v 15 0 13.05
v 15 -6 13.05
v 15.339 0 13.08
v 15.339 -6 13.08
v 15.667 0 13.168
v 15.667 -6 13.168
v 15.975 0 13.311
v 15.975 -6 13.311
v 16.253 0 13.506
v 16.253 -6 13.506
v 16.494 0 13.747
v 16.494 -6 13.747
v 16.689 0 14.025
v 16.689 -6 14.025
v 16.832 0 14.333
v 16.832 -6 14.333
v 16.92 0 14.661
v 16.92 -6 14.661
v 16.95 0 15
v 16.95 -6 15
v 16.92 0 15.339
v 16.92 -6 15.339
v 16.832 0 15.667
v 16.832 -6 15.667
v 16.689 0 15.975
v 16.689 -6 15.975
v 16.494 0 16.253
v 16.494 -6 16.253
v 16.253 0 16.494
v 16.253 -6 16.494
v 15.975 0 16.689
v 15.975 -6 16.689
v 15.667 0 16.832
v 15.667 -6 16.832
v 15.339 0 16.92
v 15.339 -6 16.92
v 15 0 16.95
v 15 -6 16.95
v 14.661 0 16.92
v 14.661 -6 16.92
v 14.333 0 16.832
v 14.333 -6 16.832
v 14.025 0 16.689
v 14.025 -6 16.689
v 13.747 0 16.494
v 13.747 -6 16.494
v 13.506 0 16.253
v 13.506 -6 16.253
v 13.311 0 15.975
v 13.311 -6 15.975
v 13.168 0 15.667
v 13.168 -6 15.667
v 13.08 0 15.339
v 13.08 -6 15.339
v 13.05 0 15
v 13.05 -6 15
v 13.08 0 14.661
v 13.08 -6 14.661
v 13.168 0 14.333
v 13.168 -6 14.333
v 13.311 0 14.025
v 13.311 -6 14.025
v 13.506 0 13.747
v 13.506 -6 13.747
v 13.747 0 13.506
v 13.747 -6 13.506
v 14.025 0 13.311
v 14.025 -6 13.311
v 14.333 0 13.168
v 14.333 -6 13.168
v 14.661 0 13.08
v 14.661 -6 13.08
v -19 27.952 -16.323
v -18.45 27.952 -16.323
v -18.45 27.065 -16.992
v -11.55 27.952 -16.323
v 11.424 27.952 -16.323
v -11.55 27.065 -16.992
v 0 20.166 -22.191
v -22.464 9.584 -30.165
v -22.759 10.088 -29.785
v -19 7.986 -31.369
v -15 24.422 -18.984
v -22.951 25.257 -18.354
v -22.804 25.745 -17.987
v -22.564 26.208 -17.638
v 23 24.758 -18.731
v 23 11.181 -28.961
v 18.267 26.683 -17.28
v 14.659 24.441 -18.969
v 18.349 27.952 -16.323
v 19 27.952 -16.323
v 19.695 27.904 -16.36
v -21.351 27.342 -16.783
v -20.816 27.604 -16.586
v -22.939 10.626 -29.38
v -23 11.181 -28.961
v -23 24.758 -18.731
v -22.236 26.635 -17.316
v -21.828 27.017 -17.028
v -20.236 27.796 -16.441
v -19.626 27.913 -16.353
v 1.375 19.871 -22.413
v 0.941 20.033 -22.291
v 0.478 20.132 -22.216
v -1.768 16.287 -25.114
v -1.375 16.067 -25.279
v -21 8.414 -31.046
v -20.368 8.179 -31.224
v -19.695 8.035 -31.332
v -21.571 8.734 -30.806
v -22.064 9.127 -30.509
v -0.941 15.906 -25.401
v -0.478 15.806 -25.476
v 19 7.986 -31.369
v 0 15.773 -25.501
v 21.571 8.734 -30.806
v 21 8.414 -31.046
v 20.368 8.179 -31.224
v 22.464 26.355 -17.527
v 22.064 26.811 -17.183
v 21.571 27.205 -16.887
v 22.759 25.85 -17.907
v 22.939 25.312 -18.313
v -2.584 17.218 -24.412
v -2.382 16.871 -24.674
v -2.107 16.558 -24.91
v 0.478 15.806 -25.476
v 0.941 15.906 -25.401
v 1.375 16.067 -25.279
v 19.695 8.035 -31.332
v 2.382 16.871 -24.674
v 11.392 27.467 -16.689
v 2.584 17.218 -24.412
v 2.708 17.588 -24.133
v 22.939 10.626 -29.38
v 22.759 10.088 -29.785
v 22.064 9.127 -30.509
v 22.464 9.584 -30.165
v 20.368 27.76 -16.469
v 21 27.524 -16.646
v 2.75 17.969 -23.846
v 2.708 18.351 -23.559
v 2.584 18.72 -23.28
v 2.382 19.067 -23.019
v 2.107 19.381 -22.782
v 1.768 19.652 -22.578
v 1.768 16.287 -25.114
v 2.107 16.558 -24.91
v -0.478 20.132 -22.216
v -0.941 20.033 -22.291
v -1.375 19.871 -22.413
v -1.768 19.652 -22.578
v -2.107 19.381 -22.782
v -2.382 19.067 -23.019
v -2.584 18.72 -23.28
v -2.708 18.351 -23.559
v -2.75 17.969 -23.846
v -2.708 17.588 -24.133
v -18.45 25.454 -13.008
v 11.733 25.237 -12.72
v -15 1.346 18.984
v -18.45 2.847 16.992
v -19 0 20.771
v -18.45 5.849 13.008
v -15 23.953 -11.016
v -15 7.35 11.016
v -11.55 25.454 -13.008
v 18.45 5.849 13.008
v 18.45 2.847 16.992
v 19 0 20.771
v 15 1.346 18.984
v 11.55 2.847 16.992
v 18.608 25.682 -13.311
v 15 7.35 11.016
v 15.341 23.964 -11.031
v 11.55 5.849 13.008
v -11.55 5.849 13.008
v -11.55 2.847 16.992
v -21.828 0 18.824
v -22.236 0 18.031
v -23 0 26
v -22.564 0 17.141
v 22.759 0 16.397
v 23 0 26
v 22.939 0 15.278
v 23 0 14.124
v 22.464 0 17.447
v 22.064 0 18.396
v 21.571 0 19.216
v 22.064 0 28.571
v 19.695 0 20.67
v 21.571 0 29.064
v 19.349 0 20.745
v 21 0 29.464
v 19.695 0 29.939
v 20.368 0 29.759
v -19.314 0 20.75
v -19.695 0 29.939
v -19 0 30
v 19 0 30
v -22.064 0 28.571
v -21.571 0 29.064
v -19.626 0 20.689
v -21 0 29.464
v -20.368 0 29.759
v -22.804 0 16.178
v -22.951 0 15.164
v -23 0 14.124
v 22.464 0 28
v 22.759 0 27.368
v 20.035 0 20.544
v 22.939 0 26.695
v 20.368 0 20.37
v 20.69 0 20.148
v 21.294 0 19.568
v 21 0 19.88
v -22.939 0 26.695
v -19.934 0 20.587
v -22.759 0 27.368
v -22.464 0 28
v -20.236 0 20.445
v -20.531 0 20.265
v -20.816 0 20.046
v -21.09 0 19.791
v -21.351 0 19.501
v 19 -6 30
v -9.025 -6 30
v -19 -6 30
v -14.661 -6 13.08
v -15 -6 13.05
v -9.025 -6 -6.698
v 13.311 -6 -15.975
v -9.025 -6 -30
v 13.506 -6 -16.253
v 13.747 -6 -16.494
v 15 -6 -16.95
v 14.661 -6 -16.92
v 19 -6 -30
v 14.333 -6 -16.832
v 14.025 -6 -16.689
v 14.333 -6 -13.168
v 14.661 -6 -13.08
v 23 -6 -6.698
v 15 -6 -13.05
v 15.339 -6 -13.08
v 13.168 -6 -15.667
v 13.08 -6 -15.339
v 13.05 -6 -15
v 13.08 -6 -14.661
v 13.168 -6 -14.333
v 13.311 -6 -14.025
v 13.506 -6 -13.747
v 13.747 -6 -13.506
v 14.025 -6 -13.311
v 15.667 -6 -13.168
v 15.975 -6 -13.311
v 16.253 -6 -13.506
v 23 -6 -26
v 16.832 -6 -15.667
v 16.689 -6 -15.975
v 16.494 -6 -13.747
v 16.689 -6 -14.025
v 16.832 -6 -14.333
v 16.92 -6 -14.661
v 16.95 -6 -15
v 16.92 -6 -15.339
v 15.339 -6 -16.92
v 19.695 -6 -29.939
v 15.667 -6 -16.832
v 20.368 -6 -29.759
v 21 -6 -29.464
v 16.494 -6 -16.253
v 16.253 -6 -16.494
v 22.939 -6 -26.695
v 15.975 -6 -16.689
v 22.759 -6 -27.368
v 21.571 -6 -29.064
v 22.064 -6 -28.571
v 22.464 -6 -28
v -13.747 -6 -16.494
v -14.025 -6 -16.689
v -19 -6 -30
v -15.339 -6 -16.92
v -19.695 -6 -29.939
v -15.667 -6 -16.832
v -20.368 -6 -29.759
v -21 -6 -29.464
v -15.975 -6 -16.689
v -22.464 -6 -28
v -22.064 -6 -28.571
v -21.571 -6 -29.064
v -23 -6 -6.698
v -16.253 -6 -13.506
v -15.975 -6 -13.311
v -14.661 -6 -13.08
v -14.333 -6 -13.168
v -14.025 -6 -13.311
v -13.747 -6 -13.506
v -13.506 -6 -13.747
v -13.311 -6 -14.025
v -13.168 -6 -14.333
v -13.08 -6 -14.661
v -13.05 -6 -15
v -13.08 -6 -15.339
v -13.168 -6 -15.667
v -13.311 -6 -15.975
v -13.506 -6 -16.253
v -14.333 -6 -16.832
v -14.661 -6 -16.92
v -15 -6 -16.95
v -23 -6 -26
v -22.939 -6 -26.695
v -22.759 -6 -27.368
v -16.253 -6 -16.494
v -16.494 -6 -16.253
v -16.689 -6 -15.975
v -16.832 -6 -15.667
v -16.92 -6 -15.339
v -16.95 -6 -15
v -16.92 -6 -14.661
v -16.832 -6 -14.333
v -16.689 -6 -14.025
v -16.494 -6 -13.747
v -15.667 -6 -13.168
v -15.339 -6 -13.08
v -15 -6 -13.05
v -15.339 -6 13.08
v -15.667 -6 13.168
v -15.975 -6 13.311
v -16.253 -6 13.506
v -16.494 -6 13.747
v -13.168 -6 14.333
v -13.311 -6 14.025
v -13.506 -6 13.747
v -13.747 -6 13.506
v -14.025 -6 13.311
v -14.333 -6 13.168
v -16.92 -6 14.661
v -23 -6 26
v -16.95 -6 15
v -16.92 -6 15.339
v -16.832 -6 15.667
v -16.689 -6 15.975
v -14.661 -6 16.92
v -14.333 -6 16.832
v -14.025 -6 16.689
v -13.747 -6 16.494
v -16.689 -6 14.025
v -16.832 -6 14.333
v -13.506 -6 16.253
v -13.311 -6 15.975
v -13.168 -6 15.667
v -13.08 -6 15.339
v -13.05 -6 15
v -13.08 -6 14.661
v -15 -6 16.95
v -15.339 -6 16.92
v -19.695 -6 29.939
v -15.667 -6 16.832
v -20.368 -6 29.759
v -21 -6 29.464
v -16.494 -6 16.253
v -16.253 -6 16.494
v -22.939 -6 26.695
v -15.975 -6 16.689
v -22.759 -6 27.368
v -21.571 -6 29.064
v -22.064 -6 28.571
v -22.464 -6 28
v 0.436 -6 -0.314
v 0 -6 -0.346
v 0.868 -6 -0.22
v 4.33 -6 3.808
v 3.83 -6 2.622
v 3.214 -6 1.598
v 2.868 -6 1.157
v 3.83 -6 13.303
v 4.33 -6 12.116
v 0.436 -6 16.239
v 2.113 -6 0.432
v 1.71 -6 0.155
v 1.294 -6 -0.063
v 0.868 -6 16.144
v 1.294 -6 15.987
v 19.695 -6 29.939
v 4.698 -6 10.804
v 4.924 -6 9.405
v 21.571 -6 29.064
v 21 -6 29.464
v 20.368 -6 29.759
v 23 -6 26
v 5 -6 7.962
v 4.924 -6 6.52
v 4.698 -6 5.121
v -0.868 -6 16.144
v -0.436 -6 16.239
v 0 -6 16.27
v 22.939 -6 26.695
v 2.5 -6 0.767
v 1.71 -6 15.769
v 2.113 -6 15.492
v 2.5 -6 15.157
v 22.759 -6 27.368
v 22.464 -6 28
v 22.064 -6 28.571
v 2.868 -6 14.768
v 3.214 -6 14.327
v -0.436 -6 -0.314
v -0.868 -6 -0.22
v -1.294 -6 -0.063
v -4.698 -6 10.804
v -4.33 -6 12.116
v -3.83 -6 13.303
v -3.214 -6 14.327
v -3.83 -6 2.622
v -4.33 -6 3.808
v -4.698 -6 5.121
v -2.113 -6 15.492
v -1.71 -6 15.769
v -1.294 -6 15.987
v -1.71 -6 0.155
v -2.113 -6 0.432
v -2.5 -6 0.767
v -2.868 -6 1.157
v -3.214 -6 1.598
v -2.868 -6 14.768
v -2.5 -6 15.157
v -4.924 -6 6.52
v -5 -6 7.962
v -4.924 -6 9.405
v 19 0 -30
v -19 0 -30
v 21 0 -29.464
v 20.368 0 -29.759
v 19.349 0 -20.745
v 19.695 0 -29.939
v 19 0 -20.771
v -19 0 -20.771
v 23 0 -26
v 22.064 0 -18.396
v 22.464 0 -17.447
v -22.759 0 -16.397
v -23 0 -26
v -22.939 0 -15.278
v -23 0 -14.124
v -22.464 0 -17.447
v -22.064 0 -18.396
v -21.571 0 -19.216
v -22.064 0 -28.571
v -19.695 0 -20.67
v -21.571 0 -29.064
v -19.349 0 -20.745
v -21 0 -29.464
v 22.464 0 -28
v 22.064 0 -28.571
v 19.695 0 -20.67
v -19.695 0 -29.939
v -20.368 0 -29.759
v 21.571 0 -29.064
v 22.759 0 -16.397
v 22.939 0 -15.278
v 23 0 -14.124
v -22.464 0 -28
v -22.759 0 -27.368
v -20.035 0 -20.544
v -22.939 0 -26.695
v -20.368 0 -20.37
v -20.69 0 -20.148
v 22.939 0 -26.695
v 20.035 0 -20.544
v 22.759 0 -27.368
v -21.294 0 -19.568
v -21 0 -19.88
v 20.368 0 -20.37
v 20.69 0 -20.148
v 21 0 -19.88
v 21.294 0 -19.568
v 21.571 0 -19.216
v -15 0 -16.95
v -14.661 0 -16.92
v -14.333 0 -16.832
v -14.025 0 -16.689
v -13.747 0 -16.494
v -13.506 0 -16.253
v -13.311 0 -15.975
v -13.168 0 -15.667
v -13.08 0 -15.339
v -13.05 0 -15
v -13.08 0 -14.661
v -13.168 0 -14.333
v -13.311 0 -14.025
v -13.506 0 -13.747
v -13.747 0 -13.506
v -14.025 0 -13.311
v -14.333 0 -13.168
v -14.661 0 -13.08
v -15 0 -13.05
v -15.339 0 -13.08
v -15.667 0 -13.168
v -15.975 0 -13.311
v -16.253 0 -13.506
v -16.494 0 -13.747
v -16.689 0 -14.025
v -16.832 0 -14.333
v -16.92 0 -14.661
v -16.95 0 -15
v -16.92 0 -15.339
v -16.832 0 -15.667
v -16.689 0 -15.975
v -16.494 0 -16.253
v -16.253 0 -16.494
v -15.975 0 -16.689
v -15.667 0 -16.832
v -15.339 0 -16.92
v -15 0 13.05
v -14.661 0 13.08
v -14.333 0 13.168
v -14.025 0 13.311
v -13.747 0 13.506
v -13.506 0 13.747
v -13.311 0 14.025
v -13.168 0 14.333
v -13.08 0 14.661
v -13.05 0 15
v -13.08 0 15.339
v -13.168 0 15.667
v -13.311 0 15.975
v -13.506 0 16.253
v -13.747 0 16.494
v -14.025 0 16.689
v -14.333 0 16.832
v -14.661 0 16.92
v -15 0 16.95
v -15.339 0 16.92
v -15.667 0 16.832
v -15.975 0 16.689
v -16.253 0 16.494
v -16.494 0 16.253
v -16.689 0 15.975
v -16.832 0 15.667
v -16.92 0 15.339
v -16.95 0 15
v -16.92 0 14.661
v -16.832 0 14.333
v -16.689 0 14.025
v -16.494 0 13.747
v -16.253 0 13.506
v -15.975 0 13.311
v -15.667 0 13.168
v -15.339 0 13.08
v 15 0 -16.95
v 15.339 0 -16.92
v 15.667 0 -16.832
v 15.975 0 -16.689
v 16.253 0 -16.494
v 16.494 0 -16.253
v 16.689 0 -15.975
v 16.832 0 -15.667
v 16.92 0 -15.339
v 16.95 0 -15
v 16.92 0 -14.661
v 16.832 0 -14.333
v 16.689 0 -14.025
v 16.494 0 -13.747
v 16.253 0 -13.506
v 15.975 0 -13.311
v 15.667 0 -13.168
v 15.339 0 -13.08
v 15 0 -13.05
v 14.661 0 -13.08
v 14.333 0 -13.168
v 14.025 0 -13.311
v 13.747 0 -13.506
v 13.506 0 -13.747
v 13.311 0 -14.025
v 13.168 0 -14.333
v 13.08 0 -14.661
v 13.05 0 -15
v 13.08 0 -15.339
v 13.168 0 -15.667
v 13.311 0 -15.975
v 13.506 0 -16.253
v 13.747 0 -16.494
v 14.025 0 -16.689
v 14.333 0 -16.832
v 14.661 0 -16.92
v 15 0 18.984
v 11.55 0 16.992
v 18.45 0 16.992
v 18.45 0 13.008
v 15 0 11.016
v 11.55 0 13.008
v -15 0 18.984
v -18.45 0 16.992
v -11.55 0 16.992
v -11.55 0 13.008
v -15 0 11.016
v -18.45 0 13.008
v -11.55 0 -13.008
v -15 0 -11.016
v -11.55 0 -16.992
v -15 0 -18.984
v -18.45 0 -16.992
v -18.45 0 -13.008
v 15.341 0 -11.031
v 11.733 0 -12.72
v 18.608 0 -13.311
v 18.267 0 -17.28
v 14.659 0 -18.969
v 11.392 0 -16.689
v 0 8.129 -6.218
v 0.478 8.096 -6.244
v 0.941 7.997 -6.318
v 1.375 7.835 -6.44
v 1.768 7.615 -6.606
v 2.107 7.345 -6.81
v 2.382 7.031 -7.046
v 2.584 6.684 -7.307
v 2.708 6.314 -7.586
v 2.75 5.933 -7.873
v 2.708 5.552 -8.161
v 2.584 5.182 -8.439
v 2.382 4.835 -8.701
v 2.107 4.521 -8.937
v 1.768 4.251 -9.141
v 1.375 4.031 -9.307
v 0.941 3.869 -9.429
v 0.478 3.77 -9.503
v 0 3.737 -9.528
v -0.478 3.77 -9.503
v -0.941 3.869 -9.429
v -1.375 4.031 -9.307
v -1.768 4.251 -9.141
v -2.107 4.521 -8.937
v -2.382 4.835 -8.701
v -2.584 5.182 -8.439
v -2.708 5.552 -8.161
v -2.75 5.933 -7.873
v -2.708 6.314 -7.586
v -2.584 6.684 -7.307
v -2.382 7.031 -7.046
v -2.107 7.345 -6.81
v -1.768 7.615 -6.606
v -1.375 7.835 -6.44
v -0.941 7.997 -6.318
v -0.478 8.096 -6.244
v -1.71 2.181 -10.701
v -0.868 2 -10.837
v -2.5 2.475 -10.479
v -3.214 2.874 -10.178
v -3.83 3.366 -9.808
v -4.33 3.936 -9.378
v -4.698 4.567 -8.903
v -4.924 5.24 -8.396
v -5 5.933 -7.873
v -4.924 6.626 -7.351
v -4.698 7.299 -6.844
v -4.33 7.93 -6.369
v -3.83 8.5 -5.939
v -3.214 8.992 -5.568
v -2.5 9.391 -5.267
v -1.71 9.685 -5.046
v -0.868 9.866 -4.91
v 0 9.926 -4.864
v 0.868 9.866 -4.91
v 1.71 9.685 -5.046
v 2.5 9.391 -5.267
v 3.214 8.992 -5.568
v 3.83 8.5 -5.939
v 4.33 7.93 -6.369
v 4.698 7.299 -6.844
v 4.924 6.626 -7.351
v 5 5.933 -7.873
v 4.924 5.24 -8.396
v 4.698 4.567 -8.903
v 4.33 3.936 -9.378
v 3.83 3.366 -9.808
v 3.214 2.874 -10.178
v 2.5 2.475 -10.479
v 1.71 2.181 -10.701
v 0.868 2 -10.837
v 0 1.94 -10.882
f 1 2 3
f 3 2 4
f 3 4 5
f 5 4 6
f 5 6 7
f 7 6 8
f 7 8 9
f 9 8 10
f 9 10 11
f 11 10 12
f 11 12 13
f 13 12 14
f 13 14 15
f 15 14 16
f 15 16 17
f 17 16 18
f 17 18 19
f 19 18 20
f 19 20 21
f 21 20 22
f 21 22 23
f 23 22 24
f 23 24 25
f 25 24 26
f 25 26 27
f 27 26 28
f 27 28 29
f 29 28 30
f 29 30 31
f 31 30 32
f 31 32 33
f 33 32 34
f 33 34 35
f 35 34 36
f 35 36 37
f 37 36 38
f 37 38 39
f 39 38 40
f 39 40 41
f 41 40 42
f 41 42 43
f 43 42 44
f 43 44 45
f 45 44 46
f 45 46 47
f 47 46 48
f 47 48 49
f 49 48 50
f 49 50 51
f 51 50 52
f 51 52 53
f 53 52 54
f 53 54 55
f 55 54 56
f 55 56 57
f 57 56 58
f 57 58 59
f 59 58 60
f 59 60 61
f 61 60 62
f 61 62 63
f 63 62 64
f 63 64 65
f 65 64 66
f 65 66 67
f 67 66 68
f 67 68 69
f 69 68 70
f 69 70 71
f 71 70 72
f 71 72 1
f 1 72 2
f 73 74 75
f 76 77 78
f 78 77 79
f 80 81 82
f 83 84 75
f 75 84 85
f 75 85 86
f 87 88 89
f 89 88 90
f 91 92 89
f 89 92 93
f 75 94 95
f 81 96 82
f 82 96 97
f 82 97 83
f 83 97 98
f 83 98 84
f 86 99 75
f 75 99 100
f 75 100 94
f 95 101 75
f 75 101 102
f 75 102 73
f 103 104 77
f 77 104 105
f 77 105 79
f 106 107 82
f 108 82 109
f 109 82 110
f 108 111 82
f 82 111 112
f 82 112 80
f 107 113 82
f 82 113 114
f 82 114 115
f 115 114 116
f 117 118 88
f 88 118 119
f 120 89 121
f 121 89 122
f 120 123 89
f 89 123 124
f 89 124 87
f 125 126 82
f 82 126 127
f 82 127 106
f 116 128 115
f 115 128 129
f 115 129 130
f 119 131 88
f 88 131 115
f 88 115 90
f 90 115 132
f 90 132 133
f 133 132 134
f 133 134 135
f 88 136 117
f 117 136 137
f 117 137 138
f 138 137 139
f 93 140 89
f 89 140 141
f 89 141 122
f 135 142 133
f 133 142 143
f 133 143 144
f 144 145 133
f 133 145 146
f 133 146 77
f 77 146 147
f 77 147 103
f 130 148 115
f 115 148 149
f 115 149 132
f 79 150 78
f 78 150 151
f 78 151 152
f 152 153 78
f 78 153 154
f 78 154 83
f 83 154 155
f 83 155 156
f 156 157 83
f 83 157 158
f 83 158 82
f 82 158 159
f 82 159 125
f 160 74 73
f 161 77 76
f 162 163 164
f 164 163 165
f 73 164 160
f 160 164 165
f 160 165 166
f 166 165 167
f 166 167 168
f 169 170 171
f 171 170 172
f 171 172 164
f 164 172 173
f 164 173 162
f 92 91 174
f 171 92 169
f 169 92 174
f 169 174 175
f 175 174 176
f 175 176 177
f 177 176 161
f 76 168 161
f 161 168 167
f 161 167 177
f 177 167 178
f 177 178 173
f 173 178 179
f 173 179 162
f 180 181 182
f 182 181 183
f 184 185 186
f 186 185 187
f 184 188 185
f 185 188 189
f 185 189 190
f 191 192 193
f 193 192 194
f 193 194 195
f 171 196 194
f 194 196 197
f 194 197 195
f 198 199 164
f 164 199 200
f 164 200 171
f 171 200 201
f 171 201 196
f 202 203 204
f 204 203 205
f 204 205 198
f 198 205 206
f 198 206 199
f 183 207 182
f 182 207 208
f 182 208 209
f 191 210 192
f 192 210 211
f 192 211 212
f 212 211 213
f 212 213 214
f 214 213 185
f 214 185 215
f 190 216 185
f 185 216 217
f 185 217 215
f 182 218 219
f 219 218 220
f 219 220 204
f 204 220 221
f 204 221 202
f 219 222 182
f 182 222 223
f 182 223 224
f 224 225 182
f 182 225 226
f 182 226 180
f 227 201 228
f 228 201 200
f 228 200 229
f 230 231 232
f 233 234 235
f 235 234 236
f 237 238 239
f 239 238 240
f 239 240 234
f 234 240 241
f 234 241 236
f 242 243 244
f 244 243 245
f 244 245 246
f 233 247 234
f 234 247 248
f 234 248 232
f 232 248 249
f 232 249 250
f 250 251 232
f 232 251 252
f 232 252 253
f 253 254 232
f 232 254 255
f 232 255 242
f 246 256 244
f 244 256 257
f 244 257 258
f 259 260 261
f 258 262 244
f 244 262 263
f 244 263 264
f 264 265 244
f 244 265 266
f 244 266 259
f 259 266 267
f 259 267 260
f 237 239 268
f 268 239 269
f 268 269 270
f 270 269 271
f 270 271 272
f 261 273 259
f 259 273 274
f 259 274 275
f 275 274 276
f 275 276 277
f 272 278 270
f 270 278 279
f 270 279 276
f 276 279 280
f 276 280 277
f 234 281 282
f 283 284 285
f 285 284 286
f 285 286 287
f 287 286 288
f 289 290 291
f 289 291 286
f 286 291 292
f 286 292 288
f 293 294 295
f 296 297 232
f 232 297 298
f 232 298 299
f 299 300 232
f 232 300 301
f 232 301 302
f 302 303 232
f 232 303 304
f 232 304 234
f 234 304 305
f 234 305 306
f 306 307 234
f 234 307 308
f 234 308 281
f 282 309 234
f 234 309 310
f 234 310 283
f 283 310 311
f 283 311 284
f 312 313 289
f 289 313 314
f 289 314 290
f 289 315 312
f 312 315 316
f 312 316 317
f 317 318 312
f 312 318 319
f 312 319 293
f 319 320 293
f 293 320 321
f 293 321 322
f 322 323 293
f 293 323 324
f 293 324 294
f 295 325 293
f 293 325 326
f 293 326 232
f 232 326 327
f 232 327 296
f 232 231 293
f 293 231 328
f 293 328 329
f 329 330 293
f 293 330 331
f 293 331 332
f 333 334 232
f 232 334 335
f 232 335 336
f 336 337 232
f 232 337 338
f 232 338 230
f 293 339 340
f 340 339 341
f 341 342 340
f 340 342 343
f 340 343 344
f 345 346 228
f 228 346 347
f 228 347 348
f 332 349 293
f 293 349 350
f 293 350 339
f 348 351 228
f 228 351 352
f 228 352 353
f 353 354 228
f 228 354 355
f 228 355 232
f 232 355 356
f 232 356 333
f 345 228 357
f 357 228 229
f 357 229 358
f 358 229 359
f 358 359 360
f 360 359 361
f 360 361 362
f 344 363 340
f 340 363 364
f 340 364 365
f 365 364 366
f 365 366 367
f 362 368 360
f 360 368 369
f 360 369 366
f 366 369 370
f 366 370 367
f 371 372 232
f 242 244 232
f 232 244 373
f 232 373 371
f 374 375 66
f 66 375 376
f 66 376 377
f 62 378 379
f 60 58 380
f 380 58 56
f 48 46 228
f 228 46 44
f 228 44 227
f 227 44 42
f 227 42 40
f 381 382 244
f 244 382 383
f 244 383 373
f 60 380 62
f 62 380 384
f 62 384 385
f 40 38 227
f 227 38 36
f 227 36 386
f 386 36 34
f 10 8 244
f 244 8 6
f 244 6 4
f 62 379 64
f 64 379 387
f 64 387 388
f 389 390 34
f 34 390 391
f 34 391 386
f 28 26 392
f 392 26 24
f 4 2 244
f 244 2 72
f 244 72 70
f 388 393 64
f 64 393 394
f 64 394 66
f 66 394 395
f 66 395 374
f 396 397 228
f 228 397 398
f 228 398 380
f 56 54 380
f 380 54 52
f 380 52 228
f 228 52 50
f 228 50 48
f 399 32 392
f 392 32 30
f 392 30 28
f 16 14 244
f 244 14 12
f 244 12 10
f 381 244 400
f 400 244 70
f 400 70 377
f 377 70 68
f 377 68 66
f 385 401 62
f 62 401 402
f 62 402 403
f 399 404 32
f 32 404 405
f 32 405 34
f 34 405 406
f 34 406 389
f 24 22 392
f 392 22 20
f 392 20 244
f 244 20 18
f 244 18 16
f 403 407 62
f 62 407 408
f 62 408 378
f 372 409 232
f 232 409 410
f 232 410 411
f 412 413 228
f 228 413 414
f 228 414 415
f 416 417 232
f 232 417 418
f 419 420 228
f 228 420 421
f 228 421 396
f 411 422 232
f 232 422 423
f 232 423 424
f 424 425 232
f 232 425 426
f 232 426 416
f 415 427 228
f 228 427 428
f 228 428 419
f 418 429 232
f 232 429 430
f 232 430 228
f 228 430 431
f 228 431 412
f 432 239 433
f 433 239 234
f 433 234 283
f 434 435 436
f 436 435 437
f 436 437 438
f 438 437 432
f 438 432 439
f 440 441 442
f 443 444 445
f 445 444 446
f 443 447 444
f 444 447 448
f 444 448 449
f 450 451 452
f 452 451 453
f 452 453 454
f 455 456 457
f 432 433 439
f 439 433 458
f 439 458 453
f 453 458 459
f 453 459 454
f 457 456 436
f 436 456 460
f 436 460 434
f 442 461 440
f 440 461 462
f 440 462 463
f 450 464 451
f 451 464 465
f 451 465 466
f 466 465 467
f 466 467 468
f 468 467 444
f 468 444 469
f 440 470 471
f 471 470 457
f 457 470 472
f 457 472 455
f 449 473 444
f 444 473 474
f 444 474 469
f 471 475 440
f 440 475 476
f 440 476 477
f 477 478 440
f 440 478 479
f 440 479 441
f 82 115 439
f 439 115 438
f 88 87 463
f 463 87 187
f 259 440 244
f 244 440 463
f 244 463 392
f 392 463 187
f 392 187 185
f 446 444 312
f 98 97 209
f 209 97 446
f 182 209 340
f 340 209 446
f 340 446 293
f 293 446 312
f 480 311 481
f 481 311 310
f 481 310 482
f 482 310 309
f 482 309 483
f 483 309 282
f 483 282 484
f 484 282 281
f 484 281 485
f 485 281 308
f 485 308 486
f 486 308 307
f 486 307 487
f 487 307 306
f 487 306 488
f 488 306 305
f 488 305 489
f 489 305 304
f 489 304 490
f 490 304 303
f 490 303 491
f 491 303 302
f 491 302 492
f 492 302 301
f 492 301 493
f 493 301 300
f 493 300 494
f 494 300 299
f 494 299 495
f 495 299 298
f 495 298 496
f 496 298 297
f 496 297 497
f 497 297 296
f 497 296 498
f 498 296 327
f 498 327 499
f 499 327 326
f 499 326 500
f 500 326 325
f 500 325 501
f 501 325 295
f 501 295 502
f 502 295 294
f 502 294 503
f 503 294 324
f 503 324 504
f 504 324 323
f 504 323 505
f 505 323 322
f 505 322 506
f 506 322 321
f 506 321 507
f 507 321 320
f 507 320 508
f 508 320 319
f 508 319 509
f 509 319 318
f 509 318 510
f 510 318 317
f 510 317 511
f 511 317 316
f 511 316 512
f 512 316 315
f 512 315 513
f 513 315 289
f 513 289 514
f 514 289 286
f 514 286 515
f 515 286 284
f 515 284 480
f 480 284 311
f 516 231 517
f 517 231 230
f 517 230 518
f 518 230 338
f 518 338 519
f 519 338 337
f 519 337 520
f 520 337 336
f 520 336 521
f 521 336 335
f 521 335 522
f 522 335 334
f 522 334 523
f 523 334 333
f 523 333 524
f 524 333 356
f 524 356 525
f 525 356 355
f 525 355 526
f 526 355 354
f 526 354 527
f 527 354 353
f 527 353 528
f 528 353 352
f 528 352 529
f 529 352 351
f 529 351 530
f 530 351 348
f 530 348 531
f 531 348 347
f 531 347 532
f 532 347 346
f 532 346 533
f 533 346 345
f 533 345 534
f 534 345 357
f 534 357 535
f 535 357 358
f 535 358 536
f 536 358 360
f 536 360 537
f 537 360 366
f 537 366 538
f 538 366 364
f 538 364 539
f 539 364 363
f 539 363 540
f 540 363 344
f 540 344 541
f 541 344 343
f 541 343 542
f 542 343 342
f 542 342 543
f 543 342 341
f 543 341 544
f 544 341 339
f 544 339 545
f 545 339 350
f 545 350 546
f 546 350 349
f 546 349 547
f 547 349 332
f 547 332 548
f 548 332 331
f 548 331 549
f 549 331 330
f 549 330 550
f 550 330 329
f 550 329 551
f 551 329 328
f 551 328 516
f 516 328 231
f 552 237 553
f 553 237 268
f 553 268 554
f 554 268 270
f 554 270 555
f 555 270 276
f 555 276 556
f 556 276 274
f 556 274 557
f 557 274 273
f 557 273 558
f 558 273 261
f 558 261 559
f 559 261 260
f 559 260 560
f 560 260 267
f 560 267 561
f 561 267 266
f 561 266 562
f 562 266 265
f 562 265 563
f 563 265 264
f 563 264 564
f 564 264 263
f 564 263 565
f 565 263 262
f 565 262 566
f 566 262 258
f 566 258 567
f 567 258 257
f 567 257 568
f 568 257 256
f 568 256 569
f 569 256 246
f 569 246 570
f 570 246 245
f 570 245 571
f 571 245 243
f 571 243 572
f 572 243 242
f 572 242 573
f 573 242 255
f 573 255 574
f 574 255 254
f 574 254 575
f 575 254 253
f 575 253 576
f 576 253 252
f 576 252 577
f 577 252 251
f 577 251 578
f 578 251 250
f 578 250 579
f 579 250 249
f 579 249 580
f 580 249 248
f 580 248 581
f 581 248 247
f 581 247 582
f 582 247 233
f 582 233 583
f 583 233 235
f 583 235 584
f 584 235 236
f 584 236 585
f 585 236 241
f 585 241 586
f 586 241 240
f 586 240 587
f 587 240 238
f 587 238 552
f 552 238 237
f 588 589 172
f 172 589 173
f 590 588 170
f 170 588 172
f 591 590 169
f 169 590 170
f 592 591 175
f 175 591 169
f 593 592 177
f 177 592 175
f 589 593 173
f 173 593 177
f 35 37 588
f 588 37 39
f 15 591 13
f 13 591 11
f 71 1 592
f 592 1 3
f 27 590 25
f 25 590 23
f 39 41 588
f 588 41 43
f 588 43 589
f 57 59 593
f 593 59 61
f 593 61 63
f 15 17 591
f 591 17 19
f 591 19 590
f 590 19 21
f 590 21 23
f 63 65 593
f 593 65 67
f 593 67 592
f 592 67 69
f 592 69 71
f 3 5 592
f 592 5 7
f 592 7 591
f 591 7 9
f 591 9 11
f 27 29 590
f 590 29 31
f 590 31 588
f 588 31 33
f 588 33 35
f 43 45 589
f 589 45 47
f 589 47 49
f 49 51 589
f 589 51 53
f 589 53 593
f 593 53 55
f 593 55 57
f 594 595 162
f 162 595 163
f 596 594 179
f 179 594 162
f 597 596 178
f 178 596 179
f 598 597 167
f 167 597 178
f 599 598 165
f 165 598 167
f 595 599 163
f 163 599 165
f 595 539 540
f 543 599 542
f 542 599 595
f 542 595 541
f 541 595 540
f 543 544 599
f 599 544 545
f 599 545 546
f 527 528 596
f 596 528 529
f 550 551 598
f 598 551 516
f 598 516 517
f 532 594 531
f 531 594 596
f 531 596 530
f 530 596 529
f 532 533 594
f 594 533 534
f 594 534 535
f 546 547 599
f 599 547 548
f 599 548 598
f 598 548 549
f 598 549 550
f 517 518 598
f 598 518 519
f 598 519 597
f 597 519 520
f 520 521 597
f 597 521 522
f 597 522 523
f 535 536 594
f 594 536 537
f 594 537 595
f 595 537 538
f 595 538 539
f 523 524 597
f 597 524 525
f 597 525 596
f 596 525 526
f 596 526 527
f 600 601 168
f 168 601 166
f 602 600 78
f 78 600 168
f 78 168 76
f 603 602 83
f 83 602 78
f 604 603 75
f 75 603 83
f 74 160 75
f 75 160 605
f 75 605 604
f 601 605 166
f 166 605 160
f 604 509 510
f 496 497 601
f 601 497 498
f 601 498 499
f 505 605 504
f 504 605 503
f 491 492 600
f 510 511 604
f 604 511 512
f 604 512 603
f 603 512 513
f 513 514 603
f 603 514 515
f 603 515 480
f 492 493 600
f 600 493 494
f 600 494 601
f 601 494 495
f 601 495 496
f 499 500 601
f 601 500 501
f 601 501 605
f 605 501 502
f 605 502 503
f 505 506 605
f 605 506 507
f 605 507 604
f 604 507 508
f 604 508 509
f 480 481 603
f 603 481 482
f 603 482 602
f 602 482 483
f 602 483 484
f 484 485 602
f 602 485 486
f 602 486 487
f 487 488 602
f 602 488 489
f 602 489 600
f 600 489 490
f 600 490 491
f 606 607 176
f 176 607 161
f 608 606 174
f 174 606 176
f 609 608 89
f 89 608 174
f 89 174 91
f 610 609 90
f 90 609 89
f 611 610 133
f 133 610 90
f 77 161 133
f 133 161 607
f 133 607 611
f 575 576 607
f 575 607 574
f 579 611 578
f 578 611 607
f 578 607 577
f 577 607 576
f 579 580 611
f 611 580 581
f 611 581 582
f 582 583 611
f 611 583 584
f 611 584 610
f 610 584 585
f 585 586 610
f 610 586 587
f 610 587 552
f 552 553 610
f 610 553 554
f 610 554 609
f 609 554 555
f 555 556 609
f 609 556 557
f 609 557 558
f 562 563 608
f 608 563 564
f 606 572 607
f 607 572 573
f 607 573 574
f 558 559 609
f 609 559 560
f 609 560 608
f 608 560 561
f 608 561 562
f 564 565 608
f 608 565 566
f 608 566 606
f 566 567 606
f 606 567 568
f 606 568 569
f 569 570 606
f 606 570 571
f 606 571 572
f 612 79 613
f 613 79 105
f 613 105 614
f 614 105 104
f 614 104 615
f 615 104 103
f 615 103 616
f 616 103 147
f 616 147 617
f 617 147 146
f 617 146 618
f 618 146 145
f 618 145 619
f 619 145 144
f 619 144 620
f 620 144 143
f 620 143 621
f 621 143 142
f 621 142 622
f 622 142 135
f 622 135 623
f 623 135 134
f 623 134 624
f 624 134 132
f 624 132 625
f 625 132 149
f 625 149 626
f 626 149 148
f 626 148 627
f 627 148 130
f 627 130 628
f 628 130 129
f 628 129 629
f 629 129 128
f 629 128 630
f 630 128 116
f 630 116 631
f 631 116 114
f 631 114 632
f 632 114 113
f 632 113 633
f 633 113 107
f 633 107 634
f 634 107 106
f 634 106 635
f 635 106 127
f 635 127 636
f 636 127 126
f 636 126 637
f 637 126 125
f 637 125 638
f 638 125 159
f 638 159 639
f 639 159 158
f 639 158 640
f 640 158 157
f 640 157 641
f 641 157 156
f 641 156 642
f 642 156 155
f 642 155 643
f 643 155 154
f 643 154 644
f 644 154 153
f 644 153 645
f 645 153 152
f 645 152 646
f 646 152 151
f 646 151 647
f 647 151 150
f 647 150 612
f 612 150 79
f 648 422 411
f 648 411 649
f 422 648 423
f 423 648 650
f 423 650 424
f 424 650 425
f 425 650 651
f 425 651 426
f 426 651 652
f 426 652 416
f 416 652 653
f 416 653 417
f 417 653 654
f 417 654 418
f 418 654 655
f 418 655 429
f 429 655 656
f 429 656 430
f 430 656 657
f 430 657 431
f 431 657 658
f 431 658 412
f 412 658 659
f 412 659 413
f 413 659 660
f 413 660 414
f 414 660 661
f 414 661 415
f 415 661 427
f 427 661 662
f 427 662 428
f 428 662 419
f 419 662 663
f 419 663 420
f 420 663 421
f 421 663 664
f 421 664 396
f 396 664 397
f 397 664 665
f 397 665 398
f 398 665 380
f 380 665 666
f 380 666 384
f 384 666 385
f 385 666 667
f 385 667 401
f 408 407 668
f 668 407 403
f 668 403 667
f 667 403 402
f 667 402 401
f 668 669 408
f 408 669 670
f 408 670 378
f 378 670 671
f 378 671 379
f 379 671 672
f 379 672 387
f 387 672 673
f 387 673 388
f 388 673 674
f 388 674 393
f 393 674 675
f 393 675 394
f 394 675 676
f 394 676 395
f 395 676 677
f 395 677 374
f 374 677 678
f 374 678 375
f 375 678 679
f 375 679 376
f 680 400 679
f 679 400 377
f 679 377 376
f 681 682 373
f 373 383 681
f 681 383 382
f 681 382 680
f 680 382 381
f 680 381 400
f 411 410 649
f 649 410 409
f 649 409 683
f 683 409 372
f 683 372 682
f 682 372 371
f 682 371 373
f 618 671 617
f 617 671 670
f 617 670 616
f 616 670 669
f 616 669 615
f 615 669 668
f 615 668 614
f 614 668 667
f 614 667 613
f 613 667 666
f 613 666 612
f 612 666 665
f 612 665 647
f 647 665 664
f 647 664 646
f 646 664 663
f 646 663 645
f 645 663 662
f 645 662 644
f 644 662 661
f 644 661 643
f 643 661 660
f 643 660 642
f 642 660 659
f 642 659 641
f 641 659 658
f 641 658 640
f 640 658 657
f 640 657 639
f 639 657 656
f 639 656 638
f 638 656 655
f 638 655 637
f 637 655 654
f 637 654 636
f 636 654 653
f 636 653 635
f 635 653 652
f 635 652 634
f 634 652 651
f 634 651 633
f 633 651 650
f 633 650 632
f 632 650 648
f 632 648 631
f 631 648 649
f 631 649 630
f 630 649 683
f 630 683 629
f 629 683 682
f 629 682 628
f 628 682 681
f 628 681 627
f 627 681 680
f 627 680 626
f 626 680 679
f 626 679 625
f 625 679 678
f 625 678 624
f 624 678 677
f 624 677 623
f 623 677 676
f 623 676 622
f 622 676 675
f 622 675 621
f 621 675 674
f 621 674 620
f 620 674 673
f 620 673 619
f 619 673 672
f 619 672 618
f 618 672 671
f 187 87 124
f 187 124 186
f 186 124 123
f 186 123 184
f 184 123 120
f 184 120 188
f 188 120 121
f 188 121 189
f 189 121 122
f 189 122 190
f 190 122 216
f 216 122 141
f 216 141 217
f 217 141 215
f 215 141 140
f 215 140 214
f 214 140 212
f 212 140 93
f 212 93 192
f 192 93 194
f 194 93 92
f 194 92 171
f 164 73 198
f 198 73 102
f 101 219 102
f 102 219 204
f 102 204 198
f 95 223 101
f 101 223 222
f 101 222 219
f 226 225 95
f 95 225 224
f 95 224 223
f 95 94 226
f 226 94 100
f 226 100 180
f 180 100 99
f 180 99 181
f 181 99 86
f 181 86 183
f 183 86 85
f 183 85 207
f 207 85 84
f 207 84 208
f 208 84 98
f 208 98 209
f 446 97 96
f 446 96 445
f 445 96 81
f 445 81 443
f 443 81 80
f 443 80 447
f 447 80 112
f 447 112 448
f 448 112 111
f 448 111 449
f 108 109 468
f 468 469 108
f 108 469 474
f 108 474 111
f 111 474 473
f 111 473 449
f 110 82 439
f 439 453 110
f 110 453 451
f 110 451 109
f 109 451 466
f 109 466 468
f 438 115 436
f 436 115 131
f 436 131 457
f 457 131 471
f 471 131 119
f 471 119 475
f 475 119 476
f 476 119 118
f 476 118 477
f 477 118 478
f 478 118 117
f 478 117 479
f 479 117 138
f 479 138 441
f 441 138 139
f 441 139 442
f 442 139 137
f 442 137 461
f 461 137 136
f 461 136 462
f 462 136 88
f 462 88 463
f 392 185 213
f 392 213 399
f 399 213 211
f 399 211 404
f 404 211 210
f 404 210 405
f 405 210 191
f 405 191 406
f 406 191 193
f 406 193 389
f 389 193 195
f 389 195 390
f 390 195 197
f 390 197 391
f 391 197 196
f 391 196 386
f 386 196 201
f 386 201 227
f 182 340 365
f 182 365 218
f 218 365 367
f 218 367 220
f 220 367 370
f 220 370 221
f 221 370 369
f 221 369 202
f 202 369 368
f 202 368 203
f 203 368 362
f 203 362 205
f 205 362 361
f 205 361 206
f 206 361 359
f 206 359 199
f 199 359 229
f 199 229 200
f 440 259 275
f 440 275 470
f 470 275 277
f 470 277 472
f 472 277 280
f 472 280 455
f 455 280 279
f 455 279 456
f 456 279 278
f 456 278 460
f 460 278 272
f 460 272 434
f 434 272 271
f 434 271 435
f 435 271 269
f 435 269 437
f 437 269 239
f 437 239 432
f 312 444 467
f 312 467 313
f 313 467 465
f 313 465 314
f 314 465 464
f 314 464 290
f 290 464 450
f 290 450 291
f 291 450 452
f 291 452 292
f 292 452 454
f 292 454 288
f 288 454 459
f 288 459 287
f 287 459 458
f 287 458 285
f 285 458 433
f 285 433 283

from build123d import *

# Parameters (mm, degrees)
BOSS_EXTRUDE1_DEPTH = 23
CUT_EXTRUDE1_REACH  = 53.631
SKETCH4_R           = 1.95
CUT_EXTRUDE3_REACH  = 59.631
CUT_EXTRUDE3_START  = -6
CUT_EXTRUDE4_REACH  = 65.269
SKETCH7_R           = 2.75
CUT_EXTRUDE5_REACH  = 85.269
CUT_EXTRUDE5_START  = -20
SKETCH8_R           = 5
FILLET1_R           = 4


with BuildPart() as part:
    # Sketch3 → Boss-Extrude1 (new, symmetric)
    with BuildSketch(Plane(origin=(0, 0, 0), x_dir=(0, 0, -1), z_dir=(1, 0, 0))):
        Polygon((31.368752944, 7.9863551), (20.770501764, 0), (30, 0), (30, -6), (-30, -6), (-30, 0), (-20.770501764, 0), (16.323377365, 27.952242852), align=None)
    extrude(amount=BOSS_EXTRUDE1_DEPTH, both=True)

    # Sketch4 → Cut-Extrude1 (cut, up to next)
    with BuildSketch(Plane(origin=(0, -6, 0), x_dir=(-1, 0, 0), z_dir=(0, -1, 0)), mode=Mode.PRIVATE) as cut_extrude1_sk1:
        with Locations(Location((15, 15, 0), (0, 0, 90))):
            Circle(SKETCH4_R)
    cut_extrude1_tool1 = extrude(cut_extrude1_sk1.sketch, amount=-CUT_EXTRUDE1_REACH, mode=Mode.PRIVATE) & part.part
    # Sketch4 → Cut-Extrude1 (cut, up to next)
    with BuildSketch(Plane(origin=(0, -6, 0), x_dir=(-1, 0, 0), z_dir=(0, -1, 0)), mode=Mode.PRIVATE) as cut_extrude1_sk2:
        with Locations(Location((15, -15, 0), (0, 0, 90))):
            Circle(SKETCH4_R)
    cut_extrude1_tool2 = extrude(cut_extrude1_sk2.sketch, amount=-CUT_EXTRUDE1_REACH, mode=Mode.PRIVATE) & part.part
    # Sketch4 → Cut-Extrude1 (cut, up to next)
    with BuildSketch(Plane(origin=(0, -6, 0), x_dir=(-1, 0, 0), z_dir=(0, -1, 0)), mode=Mode.PRIVATE) as cut_extrude1_sk3:
        with Locations(Location((-15, -15, 0), (0, 0, 90))):
            Circle(SKETCH4_R)
    cut_extrude1_tool3 = extrude(cut_extrude1_sk3.sketch, amount=-CUT_EXTRUDE1_REACH, mode=Mode.PRIVATE) & part.part
    # Sketch4 → Cut-Extrude1 (cut, up to next)
    with BuildSketch(Plane(origin=(0, -6, 0), x_dir=(-1, 0, 0), z_dir=(0, -1, 0)), mode=Mode.PRIVATE) as cut_extrude1_sk4:
        with Locations(Location((-15, 15, 0), (0, 0, 90))):
            Circle(SKETCH4_R)
    cut_extrude1_tool4 = extrude(cut_extrude1_sk4.sketch, amount=-CUT_EXTRUDE1_REACH, mode=Mode.PRIVATE) & part.part
    add(cut_extrude1_tool1.solids().sort_by_distance((-15, -6, -15))[0], mode=Mode.SUBTRACT)
    add(cut_extrude1_tool2.solids().sort_by_distance((-15, -6, 15))[0], mode=Mode.SUBTRACT)
    add(cut_extrude1_tool3.solids().sort_by_distance((15, -6, 15))[0], mode=Mode.SUBTRACT)
    add(cut_extrude1_tool4.solids().sort_by_distance((15, -6, -15))[0], mode=Mode.SUBTRACT)

    # Sketch6 → Cut-Extrude3 (cut, up to next)
    with BuildSketch(Plane(origin=(0, -6, 0), x_dir=(-1, 0, 0), z_dir=(0, -1, 0)).offset(CUT_EXTRUDE3_START), mode=Mode.PRIVATE) as cut_extrude3_sk1:
        Polygon((-15, -18.983716857), (-18.45, -16.991858429), (-18.45, -13.008141571), (-15, -11.016283143), (-11.55, -13.008141571), (-11.55, -16.991858429), align=None)
    cut_extrude3_tool1 = extrude(cut_extrude3_sk1.sketch, amount=-CUT_EXTRUDE3_REACH, mode=Mode.PRIVATE) & part.part
    # Sketch6 → Cut-Extrude3 (cut, up to next)
    with BuildSketch(Plane(origin=(0, -6, 0), x_dir=(-1, 0, 0), z_dir=(0, -1, 0)).offset(CUT_EXTRUDE3_START), mode=Mode.PRIVATE) as cut_extrude3_sk2:
        Polygon((18.45, -16.991858429), (18.45, -13.008141571), (15, -11.016283143), (11.55, -13.008141571), (11.55, -16.991858429), (15, -18.983716857), align=None)
    cut_extrude3_tool2 = extrude(cut_extrude3_sk2.sketch, amount=-CUT_EXTRUDE3_REACH, mode=Mode.PRIVATE) & part.part
    # Sketch6 → Cut-Extrude3 (cut, up to next)
    with BuildSketch(Plane(origin=(0, -6, 0), x_dir=(-1, 0, 0), z_dir=(0, -1, 0)).offset(CUT_EXTRUDE3_START), mode=Mode.PRIVATE) as cut_extrude3_sk3:
        Polygon((15, 11.016283143), (18.45, 13.008141571), (18.45, 16.991858429), (15, 18.983716857), (11.55, 16.991858429), (11.55, 13.008141571), align=None)
    cut_extrude3_tool3 = extrude(cut_extrude3_sk3.sketch, amount=-CUT_EXTRUDE3_REACH, mode=Mode.PRIVATE) & part.part
    # Sketch6 → Cut-Extrude3 (cut, up to next)
    with BuildSketch(Plane(origin=(0, -6, 0), x_dir=(-1, 0, 0), z_dir=(0, -1, 0)).offset(CUT_EXTRUDE3_START), mode=Mode.PRIVATE) as cut_extrude3_sk4:
        Polygon((-11.733099869, 12.720227307), (-11.392208867, 16.689332159), (-14.659108999, 18.969104852), (-18.266900131, 17.279772693), (-18.607791133, 13.310667841), (-15.340891001, 11.030895148), align=None)
    cut_extrude3_tool4 = extrude(cut_extrude3_sk4.sketch, amount=-CUT_EXTRUDE3_REACH, mode=Mode.PRIVATE) & part.part
    add(cut_extrude3_tool1.solids().sort_by_distance((15, 0, 15))[0], mode=Mode.SUBTRACT)
    add(cut_extrude3_tool2.solids().sort_by_distance((-15, 0, 15))[0], mode=Mode.SUBTRACT)
    add(cut_extrude3_tool3.solids().sort_by_distance((-15, 0, -15))[0], mode=Mode.SUBTRACT)
    add(cut_extrude3_tool4.solids().sort_by_distance((15, 0, -15))[0], mode=Mode.SUBTRACT)

    # Cut-Extrude4: up to this plane
    cut_extrude4_end = Plane(origin=(23, -6, -30), z_dir=(0, 1, 0))
    # Sketch7 → Cut-Extrude4 (cut, up to the surface)
    with BuildSketch(Plane(origin=(0, 17.969298976, -23.846065154), x_dir=(-1, 0, 0), z_dir=(0, 0.6018150231520492, -0.7986355100472922)), mode=Mode.PRIVATE) as cut_extrude4_sk1:
        with Locations(Location((0, 0, 0), (0, 0, 90))):
            Circle(SKETCH7_R)
    cut_extrude4_tool1 = split(extrude(cut_extrude4_sk1.sketch, amount=-CUT_EXTRUDE4_REACH, mode=Mode.PRIVATE), bisect_by=cut_extrude4_end, keep=Keep.BOTH, mode=Mode.PRIVATE)
    add(cut_extrude4_tool1.solids().sort_by_distance((0, 17.969299, -23.846065))[0], mode=Mode.SUBTRACT)

    # Cut-Extrude5: up to this plane
    cut_extrude5_end = Plane(origin=(23, -6, -30), z_dir=(0, 1, 0))
    # Sketch8 → Cut-Extrude5 (cut, up to the surface)
    with BuildSketch(Plane(origin=(0, 17.969298976, -23.846065154), x_dir=(-1, 0, 0), z_dir=(0, 0.6018150231520492, -0.7986355100472922)).offset(CUT_EXTRUDE5_START), mode=Mode.PRIVATE) as cut_extrude5_sk1:
        with Locations(Location((0, 0, 0), (0, 0, 90))):
            Circle(SKETCH8_R)
    cut_extrude5_tool1 = split(extrude(cut_extrude5_sk1.sketch, amount=-CUT_EXTRUDE5_REACH, mode=Mode.PRIVATE), bisect_by=cut_extrude5_end, keep=Keep.BOTH, mode=Mode.PRIVATE)
    add(cut_extrude5_tool1.solids().sort_by_distance((0, 5.932999, -7.873355))[0], mode=Mode.SUBTRACT)

    # Fillet1
    fillet1_edges = [part.edges().sort_by_distance(p)[0] for p in [
        (-23, 13.976121426, 2.2235622),
        (23, -3, 30),
        (23, -3, -30),
        (23, 3.99317755, -26.069627354),
        (23, 13.976121426, 2.2235622),
        (-23, 3.99317755, -26.069627354),
        (-23, -3, -30),
        (-23, -3, 30),
    ]]
    fillet(fillet1_edges, radius=FILLET1_R)


solid = part.part
